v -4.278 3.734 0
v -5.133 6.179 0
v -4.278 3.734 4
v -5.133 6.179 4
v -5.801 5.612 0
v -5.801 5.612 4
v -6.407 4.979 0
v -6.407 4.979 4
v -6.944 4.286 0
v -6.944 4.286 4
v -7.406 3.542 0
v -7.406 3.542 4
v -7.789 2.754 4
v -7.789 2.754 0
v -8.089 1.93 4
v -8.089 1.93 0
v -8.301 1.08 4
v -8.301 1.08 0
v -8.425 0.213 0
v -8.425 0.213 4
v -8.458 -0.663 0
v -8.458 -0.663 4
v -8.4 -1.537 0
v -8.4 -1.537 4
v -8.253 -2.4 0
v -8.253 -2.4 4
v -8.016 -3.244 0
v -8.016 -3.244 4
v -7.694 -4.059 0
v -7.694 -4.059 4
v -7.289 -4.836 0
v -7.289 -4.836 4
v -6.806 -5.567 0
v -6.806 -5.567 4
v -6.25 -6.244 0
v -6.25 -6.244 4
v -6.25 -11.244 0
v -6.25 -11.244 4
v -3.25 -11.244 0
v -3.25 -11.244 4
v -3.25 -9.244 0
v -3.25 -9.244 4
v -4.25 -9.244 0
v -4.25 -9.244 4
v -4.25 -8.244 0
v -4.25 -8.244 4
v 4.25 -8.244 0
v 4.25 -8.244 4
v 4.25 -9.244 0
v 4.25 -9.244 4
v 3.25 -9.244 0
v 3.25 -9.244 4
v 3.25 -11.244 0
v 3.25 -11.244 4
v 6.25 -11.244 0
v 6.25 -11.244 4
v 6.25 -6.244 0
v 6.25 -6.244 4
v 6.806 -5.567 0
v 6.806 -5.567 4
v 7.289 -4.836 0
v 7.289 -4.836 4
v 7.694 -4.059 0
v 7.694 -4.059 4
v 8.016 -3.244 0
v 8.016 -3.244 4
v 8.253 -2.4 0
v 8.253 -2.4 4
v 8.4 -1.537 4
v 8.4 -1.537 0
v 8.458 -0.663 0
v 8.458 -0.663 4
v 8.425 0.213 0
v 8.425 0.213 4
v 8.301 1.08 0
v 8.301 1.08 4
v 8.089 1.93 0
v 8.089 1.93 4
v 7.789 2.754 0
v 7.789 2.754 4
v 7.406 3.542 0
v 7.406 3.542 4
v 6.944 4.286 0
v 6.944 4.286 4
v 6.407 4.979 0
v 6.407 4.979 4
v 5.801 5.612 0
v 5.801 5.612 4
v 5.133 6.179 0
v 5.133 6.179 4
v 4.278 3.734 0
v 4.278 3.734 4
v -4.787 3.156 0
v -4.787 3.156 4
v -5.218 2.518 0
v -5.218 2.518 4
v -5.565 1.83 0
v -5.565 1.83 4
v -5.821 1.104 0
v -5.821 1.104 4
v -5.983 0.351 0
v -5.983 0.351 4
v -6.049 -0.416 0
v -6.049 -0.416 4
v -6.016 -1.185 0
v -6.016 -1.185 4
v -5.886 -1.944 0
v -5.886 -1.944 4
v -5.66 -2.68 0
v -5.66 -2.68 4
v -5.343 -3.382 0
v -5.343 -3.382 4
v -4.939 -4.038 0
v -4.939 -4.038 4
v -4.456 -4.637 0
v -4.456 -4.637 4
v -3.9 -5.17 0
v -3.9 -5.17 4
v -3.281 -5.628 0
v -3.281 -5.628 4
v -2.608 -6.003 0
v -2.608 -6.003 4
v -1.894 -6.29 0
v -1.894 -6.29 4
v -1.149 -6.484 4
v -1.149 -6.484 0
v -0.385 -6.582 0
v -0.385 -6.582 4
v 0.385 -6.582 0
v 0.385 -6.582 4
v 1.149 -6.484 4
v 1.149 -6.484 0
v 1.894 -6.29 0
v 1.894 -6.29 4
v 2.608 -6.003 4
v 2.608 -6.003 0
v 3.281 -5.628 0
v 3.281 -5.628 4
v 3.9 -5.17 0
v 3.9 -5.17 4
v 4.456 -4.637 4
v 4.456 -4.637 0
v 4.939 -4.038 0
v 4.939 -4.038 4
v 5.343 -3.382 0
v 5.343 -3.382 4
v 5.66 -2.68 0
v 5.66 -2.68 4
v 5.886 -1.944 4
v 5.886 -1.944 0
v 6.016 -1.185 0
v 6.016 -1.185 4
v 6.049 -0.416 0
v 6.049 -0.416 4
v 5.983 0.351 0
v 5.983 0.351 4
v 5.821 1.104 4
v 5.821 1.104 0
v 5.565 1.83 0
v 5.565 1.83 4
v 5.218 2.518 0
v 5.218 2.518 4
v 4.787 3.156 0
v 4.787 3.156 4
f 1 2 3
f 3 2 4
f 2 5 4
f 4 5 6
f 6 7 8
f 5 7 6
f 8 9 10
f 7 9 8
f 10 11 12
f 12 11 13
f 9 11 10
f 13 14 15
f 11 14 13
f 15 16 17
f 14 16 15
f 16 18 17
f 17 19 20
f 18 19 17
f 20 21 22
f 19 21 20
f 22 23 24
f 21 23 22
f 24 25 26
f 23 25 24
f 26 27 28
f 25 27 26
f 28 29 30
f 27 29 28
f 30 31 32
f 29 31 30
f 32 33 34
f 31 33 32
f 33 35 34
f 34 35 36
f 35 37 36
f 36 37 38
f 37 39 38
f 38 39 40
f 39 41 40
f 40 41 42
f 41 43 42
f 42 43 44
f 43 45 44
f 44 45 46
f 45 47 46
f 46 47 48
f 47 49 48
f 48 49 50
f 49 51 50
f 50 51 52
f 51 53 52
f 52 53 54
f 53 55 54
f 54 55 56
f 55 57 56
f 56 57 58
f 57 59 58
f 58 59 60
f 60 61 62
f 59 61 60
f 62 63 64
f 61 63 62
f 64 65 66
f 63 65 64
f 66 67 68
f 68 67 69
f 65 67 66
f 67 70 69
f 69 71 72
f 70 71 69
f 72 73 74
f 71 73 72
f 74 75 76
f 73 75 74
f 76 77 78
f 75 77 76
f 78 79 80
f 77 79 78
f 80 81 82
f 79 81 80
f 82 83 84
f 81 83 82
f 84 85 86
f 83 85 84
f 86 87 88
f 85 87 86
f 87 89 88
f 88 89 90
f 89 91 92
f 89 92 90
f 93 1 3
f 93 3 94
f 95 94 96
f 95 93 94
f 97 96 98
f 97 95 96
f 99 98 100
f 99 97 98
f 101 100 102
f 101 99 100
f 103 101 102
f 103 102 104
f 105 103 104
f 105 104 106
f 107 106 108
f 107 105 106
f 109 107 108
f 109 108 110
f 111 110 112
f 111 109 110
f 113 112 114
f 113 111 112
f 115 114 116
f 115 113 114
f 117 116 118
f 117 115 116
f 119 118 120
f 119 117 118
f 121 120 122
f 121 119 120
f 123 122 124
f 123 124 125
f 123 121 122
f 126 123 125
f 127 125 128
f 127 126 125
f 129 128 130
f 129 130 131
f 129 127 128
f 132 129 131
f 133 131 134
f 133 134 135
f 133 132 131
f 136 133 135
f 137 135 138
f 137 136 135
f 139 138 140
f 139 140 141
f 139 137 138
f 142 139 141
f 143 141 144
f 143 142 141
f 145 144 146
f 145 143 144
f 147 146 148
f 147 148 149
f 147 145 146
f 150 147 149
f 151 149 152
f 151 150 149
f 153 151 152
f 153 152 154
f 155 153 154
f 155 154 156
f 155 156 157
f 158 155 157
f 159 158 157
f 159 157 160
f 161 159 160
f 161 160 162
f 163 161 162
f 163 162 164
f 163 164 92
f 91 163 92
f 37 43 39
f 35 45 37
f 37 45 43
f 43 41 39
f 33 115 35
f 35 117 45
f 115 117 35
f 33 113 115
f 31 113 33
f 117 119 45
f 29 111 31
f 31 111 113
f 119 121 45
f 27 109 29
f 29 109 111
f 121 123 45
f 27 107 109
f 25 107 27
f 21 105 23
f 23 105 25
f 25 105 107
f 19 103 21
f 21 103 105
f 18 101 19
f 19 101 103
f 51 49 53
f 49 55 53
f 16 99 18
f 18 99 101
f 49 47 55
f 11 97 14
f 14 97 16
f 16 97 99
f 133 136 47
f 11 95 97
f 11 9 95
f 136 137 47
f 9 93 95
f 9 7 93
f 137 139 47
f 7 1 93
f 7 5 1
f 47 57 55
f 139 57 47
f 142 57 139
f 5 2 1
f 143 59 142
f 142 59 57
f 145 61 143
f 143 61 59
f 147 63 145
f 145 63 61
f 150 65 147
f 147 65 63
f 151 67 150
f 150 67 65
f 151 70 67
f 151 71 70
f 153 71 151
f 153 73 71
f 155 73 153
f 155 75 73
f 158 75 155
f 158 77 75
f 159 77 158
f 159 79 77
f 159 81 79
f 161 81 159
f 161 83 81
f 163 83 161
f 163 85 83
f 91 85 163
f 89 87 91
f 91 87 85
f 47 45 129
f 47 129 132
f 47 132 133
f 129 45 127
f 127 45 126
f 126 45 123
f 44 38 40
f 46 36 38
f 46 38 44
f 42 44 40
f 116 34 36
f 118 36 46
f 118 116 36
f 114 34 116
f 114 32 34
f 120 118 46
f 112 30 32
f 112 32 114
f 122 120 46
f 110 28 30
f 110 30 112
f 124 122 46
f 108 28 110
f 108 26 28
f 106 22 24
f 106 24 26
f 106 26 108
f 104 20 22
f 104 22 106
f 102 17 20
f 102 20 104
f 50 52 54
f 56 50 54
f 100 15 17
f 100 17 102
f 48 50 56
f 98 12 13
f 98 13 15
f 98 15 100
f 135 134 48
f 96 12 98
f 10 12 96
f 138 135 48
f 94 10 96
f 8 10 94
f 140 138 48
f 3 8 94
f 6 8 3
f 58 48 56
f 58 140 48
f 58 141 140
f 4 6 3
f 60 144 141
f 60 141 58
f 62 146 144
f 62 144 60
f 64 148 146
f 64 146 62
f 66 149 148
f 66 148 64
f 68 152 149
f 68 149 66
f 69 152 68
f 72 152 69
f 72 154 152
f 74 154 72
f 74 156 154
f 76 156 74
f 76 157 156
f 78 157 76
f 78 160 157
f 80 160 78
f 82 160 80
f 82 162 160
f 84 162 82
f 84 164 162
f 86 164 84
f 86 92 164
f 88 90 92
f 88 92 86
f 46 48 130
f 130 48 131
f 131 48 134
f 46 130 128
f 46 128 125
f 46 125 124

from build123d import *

# Parameters (mm, degrees)
PAD_DEPTH = 4


with BuildPart() as part:
    # Sketch → Pad (new body)
    with BuildSketch(Plane.XY):
        with BuildLine():
            Line((-6.25, -6.24398), (-6.25, -11.24398))
            Line((-6.25, -11.24398), (-3.25, -11.24398))
            Line((-3.25, -11.24398), (-3.25, -9.24398))
            Line((-3.25, -9.24398), (-4.25, -9.24398))
            Line((-4.25, -9.24398), (-4.25, -8.24398))
            Line((-4.25, -8.24398), (4.25, -8.24398))
            Line((4.25, -8.24398), (4.25, -9.24398))
            Line((4.25, -9.24398), (3.25, -9.24398))
            Line((3.25, -9.24398), (3.25, -11.24398))
            Line((3.25, -11.24398), (6.25, -11.24398))
            Line((6.25, -11.24398), (6.25, -6.24398))
            ThreePointArc((6.25, -6.24398), (8.424703, 0.213043), (5.133293, 6.178704))
            Line((4.277996, 3.733721), (5.133293, 6.178704))
            ThreePointArc((-4.277996, 3.733721), (0, -6.594275), (4.277996, 3.733721))
            Line((-4.277996, 3.733721), (-5.133293, 6.178704))
            ThreePointArc((-5.133293, 6.178704), (-8.424703, 0.213043), (-6.25, -6.24398))
        make_face()
    extrude(amount=PAD_DEPTH)


solid = part.part
